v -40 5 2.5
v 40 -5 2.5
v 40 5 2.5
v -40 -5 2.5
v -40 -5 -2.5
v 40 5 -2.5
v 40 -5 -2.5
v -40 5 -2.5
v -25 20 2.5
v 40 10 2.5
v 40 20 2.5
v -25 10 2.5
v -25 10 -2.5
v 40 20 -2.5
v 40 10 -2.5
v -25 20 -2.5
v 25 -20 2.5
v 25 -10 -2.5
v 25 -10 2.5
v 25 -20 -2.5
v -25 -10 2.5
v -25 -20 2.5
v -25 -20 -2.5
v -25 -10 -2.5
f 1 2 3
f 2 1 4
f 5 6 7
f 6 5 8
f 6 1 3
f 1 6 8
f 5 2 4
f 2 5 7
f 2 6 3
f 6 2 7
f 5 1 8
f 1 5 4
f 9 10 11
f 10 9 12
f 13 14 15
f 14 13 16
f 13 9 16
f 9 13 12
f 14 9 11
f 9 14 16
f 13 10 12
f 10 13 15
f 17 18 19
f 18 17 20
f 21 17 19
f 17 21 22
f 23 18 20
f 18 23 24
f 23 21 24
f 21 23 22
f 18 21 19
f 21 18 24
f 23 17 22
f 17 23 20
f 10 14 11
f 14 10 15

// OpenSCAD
// Define dimensions for the rectangular bar
module rectangular_bar(length, width, thickness) {
    cube([length, width, thickness], center=true);
}

// Parameters for the rectangular bars
length = 50;  // Length of the bar
width = 10;   // Width of the bar
thickness = 5; // Thickness of the bar
spacing = 15; // Spacing between bars

// Generate the six rectangular bars in a uniform arrangement
translate([0, 0, 0]) rectangular_bar(length, width, thickness);
translate([spacing, 0, 0]) rectangular_bar(length, width, thickness);
translate([-spacing, 0, 0]) rectangular_bar(length, width, thickness);
translate([0, spacing, 0]) rectangular_bar(length, width, thickness);
translate([0, -spacing, 0]) rectangular_bar(length, width, thickness);
translate([spacing, spacing, 0]) rectangular_bar(length, width, thickness);
